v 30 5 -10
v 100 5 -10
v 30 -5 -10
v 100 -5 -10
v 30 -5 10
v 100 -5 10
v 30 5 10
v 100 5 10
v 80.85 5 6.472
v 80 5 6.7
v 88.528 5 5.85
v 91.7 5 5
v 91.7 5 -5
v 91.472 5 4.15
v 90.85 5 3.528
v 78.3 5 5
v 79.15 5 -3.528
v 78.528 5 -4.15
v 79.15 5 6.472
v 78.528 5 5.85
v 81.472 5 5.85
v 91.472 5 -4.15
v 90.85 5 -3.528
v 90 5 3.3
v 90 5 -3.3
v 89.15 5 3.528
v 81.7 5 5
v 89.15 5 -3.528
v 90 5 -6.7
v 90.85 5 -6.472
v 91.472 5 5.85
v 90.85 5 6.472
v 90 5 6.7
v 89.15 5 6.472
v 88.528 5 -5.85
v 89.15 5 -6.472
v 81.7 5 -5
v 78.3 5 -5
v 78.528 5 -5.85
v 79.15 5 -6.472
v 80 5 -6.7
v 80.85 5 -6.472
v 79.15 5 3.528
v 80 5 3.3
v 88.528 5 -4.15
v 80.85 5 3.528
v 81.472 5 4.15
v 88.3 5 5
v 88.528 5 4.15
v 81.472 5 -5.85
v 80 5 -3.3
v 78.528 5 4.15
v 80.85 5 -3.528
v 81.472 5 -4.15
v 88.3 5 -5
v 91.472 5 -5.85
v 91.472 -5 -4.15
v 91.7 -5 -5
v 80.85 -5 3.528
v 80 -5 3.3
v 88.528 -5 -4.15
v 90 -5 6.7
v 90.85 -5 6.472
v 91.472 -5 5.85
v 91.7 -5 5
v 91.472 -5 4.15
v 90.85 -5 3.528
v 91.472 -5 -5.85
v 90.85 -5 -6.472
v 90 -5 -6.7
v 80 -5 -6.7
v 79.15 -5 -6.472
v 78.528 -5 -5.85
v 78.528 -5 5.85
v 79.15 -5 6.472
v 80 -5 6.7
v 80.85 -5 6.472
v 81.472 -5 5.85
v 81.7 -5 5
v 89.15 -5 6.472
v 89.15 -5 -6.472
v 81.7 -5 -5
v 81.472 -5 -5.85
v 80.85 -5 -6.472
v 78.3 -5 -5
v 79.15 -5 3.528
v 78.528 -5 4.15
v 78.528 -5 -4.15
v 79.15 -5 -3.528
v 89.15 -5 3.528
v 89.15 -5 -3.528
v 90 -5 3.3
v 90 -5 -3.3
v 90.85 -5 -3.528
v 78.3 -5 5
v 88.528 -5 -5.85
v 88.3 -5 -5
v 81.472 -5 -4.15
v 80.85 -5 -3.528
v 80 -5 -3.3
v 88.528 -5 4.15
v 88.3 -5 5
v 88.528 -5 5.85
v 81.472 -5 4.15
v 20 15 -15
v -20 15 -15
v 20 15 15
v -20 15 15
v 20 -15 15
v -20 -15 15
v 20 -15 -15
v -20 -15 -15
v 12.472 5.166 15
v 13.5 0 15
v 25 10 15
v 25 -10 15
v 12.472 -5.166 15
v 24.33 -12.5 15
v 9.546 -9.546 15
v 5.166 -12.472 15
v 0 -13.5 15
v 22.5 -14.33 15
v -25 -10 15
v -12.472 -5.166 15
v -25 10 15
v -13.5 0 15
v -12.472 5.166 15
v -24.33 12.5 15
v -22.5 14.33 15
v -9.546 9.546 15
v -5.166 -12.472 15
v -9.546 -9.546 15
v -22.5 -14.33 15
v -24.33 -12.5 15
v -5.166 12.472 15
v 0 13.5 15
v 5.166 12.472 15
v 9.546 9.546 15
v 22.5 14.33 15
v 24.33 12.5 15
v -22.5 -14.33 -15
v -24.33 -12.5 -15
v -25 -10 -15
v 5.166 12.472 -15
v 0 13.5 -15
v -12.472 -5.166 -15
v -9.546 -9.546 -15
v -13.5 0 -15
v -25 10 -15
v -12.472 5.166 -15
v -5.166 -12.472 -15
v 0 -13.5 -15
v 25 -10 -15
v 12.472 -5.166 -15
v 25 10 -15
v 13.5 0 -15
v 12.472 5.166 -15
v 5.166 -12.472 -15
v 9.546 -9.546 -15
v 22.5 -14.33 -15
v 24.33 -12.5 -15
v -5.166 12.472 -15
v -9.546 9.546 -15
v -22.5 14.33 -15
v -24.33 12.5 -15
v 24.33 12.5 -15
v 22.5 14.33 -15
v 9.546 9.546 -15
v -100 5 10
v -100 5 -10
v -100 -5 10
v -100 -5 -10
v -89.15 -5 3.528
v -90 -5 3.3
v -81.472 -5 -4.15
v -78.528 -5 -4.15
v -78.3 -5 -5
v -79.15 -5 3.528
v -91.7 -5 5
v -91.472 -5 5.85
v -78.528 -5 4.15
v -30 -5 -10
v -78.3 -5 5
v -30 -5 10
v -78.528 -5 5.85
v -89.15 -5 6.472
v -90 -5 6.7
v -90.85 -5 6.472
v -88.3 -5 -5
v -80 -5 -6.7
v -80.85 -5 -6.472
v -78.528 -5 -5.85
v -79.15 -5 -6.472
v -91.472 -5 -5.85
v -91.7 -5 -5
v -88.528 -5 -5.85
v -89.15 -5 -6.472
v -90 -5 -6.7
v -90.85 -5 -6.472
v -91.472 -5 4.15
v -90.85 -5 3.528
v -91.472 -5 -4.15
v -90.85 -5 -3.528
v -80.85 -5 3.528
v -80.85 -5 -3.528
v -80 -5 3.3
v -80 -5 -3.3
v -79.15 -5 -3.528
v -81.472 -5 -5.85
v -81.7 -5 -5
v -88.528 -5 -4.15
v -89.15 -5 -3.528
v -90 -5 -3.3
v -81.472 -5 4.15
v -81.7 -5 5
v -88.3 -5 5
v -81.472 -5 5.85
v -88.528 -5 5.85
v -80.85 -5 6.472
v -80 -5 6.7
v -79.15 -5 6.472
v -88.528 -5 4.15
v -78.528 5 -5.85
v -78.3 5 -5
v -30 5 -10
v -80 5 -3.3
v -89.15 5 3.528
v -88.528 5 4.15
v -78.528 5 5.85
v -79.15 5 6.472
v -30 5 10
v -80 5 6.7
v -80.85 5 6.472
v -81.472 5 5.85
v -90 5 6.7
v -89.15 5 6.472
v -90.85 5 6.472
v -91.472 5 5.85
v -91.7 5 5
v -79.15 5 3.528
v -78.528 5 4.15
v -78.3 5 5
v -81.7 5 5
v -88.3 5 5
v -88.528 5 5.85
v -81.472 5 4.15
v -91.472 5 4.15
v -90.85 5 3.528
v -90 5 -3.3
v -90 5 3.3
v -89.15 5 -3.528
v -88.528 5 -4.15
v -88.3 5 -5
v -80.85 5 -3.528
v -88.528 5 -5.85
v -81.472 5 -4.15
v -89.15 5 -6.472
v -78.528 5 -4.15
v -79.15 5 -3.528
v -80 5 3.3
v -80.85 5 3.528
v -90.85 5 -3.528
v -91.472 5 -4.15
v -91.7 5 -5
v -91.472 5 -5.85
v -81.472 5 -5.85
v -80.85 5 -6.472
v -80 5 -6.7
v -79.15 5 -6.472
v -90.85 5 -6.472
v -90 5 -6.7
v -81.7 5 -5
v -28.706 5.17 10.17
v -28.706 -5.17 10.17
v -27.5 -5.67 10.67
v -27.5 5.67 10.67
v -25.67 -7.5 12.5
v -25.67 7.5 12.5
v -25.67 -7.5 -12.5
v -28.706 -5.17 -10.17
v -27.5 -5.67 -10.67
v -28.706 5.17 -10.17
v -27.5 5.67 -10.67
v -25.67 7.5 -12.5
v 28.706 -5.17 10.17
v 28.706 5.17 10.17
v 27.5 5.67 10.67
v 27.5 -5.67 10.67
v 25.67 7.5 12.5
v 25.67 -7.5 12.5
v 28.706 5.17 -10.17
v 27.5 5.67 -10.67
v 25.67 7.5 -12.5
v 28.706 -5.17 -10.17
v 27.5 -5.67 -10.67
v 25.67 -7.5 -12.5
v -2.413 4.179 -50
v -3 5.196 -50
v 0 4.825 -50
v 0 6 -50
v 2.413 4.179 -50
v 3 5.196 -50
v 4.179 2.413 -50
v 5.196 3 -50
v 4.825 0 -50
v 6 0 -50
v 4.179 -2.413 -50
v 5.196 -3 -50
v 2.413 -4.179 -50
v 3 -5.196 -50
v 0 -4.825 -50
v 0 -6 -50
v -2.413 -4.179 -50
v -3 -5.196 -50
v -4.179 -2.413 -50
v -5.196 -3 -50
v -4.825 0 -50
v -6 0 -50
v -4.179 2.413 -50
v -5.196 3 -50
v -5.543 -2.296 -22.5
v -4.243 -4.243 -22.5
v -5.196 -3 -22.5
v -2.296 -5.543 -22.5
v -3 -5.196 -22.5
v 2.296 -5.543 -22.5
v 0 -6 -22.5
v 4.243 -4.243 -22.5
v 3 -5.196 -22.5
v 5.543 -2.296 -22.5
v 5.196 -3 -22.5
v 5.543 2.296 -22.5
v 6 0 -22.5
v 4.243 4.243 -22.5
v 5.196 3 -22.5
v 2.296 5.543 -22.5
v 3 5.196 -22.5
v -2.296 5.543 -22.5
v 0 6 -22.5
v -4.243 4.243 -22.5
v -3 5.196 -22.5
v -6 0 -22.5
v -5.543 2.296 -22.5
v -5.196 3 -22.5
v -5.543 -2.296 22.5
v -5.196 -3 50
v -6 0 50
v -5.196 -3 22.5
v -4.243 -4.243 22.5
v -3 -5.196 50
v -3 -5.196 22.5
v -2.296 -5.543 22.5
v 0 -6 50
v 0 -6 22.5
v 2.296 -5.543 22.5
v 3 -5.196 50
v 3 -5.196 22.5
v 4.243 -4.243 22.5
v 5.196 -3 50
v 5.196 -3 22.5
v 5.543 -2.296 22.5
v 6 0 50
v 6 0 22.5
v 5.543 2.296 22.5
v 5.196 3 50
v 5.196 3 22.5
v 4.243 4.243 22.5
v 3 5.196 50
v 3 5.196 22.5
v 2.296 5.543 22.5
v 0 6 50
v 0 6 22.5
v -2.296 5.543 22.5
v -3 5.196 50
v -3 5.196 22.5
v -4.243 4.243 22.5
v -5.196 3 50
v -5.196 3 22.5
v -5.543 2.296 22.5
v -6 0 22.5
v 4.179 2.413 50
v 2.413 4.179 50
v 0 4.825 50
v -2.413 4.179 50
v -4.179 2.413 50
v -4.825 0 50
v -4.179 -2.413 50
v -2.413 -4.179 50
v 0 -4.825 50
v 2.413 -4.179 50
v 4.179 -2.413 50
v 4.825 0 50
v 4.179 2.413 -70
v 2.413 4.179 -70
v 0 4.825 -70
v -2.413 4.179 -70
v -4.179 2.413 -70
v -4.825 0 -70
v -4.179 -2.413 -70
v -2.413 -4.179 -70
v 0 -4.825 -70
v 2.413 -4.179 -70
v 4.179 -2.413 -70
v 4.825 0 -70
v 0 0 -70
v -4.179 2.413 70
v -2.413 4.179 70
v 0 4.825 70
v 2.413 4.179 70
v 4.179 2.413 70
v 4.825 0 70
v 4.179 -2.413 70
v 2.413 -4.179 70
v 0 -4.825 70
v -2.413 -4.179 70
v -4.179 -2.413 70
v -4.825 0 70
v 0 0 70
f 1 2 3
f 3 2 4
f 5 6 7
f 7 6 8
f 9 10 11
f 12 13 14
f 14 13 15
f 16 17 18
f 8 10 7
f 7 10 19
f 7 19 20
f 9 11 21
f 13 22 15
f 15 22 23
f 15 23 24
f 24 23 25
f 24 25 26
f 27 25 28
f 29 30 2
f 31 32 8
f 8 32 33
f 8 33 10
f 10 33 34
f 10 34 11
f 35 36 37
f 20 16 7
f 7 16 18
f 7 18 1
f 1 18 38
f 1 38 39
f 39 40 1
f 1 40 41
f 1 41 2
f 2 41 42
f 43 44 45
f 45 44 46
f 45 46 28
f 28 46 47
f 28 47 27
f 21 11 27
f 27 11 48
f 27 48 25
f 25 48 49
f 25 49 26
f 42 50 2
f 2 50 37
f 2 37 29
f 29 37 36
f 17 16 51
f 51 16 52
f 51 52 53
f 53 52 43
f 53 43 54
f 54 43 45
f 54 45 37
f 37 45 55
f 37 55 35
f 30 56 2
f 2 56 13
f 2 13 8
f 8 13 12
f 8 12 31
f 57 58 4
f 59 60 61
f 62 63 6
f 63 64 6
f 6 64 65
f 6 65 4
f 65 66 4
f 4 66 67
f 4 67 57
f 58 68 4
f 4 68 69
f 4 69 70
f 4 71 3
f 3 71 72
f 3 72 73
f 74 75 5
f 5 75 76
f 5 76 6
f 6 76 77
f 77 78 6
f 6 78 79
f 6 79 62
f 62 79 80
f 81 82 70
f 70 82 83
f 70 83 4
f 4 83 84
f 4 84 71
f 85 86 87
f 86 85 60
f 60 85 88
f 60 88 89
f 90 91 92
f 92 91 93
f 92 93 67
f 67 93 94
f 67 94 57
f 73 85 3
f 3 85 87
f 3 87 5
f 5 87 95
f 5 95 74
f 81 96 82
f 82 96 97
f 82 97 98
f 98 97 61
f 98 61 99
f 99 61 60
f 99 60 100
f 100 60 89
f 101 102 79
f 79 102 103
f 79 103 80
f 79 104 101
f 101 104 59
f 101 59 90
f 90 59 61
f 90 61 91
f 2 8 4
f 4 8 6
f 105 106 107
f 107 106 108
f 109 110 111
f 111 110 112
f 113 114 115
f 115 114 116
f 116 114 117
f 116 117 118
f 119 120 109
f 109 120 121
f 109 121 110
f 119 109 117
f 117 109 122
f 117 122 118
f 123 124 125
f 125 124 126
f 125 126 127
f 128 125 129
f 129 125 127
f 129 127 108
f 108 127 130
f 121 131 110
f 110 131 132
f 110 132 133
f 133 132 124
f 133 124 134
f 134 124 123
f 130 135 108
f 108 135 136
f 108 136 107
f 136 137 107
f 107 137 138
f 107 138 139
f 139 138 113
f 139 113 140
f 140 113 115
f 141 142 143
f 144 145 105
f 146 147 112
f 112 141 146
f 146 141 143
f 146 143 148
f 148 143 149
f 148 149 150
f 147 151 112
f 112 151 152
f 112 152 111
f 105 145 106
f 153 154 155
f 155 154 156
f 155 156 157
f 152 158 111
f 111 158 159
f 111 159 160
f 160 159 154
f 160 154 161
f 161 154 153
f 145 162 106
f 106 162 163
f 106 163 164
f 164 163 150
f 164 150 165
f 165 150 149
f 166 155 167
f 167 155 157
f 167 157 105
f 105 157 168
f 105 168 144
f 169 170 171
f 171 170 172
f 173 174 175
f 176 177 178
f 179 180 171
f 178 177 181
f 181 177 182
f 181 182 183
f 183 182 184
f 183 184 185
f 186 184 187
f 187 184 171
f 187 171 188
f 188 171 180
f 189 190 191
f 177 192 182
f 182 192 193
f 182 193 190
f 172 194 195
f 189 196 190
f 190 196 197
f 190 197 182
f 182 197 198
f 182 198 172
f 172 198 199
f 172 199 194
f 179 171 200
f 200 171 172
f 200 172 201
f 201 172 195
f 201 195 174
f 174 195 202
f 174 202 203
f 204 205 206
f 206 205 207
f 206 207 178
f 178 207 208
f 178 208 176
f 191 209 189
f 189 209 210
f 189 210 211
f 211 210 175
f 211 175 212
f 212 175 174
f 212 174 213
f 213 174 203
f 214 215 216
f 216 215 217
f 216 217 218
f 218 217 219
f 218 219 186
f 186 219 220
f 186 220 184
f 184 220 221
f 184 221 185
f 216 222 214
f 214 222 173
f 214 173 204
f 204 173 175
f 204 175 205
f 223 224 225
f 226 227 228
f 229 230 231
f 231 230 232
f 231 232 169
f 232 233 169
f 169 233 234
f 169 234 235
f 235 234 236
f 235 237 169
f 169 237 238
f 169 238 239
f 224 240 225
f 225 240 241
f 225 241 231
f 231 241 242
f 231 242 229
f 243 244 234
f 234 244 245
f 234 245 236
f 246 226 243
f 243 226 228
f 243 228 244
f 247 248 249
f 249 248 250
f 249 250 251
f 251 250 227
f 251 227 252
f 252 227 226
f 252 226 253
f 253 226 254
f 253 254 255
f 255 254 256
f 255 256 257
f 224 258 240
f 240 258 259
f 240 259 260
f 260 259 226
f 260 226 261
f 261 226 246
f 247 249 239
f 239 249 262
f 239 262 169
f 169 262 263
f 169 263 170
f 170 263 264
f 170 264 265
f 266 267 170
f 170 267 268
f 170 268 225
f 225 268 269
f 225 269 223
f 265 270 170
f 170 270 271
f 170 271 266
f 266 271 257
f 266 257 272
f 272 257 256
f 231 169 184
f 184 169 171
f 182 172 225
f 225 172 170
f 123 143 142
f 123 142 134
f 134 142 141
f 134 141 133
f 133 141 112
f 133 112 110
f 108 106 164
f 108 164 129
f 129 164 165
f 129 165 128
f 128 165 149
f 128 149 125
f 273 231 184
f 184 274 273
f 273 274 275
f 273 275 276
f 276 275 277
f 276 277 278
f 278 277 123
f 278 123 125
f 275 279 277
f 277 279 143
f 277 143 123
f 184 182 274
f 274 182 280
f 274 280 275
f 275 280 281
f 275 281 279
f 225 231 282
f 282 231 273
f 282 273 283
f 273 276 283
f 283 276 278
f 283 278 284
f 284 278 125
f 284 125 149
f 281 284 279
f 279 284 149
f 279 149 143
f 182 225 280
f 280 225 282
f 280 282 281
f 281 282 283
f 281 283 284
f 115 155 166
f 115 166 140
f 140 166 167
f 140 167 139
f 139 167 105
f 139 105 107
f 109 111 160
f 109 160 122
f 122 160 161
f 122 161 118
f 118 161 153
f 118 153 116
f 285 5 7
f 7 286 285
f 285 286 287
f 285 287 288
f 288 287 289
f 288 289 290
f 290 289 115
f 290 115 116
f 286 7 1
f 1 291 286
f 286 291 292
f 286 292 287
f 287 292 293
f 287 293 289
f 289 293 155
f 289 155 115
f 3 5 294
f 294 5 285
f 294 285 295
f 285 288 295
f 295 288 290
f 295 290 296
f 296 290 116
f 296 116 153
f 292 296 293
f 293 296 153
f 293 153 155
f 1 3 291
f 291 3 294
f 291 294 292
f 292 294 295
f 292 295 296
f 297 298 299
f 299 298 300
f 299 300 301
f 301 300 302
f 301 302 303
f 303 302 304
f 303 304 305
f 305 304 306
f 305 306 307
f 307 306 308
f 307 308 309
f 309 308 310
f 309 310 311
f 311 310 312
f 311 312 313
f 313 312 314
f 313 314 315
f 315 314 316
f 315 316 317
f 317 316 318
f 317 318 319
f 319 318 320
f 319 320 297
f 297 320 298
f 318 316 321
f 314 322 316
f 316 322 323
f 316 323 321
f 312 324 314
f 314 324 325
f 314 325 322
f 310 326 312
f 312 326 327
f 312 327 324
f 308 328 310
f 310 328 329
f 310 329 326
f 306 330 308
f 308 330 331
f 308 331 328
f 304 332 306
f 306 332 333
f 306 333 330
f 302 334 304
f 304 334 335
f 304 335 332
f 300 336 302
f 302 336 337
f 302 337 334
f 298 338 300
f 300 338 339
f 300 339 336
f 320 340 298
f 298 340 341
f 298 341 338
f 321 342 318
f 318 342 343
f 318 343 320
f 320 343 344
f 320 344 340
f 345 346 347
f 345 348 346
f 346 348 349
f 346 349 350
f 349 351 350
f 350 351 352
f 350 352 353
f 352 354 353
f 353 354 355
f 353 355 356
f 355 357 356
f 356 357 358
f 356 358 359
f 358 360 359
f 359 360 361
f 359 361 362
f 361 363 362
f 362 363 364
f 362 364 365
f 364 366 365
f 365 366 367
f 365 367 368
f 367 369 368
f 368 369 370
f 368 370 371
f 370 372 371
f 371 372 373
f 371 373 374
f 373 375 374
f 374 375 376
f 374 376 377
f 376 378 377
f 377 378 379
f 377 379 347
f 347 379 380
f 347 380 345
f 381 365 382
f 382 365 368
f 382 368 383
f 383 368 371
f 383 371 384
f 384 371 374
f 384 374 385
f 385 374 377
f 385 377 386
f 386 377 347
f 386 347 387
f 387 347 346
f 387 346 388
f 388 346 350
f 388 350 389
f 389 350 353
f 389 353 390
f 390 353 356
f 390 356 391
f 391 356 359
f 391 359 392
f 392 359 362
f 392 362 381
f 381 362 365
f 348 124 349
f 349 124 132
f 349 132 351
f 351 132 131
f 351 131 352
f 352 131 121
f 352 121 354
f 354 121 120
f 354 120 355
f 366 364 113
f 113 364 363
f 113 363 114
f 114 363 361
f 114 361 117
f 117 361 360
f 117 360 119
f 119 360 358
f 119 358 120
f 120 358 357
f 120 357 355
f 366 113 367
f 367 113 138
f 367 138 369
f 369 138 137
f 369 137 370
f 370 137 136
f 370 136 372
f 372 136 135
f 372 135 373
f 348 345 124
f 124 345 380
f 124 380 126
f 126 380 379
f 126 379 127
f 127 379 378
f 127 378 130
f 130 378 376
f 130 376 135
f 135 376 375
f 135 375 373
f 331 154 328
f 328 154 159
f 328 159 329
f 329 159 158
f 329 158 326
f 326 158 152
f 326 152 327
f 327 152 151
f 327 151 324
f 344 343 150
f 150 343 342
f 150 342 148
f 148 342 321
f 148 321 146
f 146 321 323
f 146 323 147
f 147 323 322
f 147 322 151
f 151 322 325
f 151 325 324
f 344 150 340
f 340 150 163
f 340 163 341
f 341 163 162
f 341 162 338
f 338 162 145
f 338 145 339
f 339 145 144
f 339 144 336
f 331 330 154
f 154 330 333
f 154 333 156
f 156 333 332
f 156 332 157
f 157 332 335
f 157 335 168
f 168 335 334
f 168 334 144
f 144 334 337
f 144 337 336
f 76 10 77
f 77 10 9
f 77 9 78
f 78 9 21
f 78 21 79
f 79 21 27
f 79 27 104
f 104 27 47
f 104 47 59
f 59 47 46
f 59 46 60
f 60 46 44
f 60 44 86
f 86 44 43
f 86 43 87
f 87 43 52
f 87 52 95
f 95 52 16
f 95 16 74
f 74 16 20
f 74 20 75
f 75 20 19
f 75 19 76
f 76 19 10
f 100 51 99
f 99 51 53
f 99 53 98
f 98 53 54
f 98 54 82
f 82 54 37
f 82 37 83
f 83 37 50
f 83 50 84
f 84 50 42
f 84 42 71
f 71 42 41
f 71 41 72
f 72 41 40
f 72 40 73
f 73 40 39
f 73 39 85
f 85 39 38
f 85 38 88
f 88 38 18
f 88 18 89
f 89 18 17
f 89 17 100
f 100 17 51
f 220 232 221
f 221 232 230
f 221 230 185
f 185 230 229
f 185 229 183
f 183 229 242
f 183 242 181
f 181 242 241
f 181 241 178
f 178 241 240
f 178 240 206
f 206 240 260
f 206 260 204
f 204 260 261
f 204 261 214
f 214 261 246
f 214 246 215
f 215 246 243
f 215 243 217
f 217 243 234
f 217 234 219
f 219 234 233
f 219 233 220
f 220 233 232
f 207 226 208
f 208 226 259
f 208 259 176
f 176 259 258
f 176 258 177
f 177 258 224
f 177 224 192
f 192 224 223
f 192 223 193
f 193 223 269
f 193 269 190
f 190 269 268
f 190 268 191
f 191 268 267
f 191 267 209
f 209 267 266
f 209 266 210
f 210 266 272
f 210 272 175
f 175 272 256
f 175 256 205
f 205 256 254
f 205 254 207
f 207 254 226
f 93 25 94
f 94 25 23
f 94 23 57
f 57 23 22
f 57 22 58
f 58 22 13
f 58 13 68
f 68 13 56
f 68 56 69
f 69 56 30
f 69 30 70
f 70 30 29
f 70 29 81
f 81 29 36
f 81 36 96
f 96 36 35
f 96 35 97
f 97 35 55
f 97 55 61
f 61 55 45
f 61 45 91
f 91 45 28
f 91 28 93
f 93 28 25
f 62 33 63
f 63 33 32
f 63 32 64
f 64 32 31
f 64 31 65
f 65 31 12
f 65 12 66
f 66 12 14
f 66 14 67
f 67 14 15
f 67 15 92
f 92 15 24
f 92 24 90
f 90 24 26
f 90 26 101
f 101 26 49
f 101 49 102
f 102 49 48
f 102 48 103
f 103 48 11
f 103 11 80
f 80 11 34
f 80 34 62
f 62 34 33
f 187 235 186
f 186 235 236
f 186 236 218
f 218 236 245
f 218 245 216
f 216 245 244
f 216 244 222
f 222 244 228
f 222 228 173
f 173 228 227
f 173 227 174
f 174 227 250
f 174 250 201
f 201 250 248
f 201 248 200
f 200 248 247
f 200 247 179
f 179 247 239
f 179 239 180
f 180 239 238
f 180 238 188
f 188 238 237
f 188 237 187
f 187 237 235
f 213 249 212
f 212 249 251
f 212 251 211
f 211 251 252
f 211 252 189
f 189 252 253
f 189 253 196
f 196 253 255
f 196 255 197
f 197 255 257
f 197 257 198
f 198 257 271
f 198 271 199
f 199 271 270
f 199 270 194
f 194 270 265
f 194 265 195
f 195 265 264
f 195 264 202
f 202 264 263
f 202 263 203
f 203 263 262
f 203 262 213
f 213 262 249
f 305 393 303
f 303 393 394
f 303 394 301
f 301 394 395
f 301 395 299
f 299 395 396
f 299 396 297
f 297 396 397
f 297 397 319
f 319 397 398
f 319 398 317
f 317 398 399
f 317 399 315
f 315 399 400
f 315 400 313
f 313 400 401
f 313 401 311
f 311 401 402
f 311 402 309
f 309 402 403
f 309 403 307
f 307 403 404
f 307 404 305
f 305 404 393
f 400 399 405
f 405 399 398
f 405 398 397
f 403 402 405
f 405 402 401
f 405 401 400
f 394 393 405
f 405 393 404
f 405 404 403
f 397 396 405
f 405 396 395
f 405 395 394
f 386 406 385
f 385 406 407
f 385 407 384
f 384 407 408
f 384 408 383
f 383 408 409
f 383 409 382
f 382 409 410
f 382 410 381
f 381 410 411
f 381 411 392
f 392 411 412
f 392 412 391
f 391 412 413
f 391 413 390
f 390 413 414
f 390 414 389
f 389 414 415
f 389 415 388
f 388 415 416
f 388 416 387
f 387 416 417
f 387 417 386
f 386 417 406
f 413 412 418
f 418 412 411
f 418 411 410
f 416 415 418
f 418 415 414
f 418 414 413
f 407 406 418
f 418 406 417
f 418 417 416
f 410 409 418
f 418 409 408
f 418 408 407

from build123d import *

# Parameters (mm, degrees)
SKETCH1_W            = 200
SKETCH1_H            = 20
BOSS_EXTRUDE1_DEPTH  = 5
SKETCH2_W            = 50
SKETCH2_H            = 30
BOSS_EXTRUDE2_DEPTH  = 15
FILLET3_R            = 5
SKETCH3_R            = 6
BOSS_EXTRUDE3_DEPTH  = 50
CHAMFER1_SIZE        = 7.5
M3_CLEARANCE_HOLE1_D = 3.4
SKETCH19_R           = 4.825
BOSS_EXTRUDE4_DEPTH  = 20
BOSS_EXTRUDE5_START  = 20
SKETCH20_R           = 4.825
BOSS_EXTRUDE5_DEPTH  = 20


with BuildPart() as part:
    # Sketch1 → Boss-Extrude1 (new, symmetric)
    with BuildSketch(Plane(origin=(0, 0, 0), x_dir=(1, 0, 0), z_dir=(0, 1, 0))):
        Rectangle(SKETCH1_W, SKETCH1_H)
    extrude(amount=BOSS_EXTRUDE1_DEPTH, both=True)

    # Sketch2 → Boss-Extrude2 (add, symmetric)
    with BuildSketch(Plane.XY):
        Rectangle(SKETCH2_W, SKETCH2_H)
    extrude(amount=BOSS_EXTRUDE2_DEPTH, both=True)

    # Fillet3
    fillet3_edges = [part.edges().sort_by_distance(p)[0] for p in [
        (-25, -5, 0),
        (25, -5, 0),
        (25, -15, 0),
        (25, 0, 10),
        (25, 5, 0),
        (25, 0, -10),
        (-25, 15, 0),
        (-25, 0, -10),
        (-25, 5, 0),
        (-25, 0, 10),
        (25, 15, 0),
        (-25, -15, 0),
    ]]
    fillet(fillet3_edges, radius=FILLET3_R - 0.0001)  # a hair under: the kernel refuses the full size

    # Sketch3 → Boss-Extrude3 (add, symmetric)
    with BuildSketch(Plane.XY):
        with Locations(Location((0, 0, 0), (0, 0, 180))):
            Circle(SKETCH3_R)
    extrude(amount=BOSS_EXTRUDE3_DEPTH, both=True)

    # Chamfer1
    chamfer1_edges = [part.edges().sort_by_distance(p)[0] for p in [
        (6, 0, 15),
        (6, 0, -15),
    ]]
    chamfer(chamfer1_edges, length=CHAMFER1_SIZE)

    # M3 Clearance Hole1 (through all)
    with Locations(Plane(origin=(0, 5, 0), x_dir=(1, 0, 0), z_dir=(0, 1, 0))):
        with Locations((-90, 5), (-90, -5), (90, -5), (90, 5), (-80, 5), (-80, -5), (80, 5), (80, -5)):
            Hole(M3_CLEARANCE_HOLE1_D / 2)

    # Sketch19 → Boss-Extrude4 (add)
    with BuildSketch(Plane(origin=(0, 0, -50), x_dir=(-1, 0, 0), z_dir=(0, 0, -1))):
        Circle(SKETCH19_R)
    extrude(amount=BOSS_EXTRUDE4_DEPTH)

    # Sketch20 → Boss-Extrude5 (add)
    with BuildSketch(Plane.XY.offset(50).offset(BOSS_EXTRUDE5_START)):
        with Locations(Location((0, 0, 0), (0, 0, 180))):
            Circle(SKETCH20_R)
    extrude(amount=-BOSS_EXTRUDE5_DEPTH)


solid = part.part
